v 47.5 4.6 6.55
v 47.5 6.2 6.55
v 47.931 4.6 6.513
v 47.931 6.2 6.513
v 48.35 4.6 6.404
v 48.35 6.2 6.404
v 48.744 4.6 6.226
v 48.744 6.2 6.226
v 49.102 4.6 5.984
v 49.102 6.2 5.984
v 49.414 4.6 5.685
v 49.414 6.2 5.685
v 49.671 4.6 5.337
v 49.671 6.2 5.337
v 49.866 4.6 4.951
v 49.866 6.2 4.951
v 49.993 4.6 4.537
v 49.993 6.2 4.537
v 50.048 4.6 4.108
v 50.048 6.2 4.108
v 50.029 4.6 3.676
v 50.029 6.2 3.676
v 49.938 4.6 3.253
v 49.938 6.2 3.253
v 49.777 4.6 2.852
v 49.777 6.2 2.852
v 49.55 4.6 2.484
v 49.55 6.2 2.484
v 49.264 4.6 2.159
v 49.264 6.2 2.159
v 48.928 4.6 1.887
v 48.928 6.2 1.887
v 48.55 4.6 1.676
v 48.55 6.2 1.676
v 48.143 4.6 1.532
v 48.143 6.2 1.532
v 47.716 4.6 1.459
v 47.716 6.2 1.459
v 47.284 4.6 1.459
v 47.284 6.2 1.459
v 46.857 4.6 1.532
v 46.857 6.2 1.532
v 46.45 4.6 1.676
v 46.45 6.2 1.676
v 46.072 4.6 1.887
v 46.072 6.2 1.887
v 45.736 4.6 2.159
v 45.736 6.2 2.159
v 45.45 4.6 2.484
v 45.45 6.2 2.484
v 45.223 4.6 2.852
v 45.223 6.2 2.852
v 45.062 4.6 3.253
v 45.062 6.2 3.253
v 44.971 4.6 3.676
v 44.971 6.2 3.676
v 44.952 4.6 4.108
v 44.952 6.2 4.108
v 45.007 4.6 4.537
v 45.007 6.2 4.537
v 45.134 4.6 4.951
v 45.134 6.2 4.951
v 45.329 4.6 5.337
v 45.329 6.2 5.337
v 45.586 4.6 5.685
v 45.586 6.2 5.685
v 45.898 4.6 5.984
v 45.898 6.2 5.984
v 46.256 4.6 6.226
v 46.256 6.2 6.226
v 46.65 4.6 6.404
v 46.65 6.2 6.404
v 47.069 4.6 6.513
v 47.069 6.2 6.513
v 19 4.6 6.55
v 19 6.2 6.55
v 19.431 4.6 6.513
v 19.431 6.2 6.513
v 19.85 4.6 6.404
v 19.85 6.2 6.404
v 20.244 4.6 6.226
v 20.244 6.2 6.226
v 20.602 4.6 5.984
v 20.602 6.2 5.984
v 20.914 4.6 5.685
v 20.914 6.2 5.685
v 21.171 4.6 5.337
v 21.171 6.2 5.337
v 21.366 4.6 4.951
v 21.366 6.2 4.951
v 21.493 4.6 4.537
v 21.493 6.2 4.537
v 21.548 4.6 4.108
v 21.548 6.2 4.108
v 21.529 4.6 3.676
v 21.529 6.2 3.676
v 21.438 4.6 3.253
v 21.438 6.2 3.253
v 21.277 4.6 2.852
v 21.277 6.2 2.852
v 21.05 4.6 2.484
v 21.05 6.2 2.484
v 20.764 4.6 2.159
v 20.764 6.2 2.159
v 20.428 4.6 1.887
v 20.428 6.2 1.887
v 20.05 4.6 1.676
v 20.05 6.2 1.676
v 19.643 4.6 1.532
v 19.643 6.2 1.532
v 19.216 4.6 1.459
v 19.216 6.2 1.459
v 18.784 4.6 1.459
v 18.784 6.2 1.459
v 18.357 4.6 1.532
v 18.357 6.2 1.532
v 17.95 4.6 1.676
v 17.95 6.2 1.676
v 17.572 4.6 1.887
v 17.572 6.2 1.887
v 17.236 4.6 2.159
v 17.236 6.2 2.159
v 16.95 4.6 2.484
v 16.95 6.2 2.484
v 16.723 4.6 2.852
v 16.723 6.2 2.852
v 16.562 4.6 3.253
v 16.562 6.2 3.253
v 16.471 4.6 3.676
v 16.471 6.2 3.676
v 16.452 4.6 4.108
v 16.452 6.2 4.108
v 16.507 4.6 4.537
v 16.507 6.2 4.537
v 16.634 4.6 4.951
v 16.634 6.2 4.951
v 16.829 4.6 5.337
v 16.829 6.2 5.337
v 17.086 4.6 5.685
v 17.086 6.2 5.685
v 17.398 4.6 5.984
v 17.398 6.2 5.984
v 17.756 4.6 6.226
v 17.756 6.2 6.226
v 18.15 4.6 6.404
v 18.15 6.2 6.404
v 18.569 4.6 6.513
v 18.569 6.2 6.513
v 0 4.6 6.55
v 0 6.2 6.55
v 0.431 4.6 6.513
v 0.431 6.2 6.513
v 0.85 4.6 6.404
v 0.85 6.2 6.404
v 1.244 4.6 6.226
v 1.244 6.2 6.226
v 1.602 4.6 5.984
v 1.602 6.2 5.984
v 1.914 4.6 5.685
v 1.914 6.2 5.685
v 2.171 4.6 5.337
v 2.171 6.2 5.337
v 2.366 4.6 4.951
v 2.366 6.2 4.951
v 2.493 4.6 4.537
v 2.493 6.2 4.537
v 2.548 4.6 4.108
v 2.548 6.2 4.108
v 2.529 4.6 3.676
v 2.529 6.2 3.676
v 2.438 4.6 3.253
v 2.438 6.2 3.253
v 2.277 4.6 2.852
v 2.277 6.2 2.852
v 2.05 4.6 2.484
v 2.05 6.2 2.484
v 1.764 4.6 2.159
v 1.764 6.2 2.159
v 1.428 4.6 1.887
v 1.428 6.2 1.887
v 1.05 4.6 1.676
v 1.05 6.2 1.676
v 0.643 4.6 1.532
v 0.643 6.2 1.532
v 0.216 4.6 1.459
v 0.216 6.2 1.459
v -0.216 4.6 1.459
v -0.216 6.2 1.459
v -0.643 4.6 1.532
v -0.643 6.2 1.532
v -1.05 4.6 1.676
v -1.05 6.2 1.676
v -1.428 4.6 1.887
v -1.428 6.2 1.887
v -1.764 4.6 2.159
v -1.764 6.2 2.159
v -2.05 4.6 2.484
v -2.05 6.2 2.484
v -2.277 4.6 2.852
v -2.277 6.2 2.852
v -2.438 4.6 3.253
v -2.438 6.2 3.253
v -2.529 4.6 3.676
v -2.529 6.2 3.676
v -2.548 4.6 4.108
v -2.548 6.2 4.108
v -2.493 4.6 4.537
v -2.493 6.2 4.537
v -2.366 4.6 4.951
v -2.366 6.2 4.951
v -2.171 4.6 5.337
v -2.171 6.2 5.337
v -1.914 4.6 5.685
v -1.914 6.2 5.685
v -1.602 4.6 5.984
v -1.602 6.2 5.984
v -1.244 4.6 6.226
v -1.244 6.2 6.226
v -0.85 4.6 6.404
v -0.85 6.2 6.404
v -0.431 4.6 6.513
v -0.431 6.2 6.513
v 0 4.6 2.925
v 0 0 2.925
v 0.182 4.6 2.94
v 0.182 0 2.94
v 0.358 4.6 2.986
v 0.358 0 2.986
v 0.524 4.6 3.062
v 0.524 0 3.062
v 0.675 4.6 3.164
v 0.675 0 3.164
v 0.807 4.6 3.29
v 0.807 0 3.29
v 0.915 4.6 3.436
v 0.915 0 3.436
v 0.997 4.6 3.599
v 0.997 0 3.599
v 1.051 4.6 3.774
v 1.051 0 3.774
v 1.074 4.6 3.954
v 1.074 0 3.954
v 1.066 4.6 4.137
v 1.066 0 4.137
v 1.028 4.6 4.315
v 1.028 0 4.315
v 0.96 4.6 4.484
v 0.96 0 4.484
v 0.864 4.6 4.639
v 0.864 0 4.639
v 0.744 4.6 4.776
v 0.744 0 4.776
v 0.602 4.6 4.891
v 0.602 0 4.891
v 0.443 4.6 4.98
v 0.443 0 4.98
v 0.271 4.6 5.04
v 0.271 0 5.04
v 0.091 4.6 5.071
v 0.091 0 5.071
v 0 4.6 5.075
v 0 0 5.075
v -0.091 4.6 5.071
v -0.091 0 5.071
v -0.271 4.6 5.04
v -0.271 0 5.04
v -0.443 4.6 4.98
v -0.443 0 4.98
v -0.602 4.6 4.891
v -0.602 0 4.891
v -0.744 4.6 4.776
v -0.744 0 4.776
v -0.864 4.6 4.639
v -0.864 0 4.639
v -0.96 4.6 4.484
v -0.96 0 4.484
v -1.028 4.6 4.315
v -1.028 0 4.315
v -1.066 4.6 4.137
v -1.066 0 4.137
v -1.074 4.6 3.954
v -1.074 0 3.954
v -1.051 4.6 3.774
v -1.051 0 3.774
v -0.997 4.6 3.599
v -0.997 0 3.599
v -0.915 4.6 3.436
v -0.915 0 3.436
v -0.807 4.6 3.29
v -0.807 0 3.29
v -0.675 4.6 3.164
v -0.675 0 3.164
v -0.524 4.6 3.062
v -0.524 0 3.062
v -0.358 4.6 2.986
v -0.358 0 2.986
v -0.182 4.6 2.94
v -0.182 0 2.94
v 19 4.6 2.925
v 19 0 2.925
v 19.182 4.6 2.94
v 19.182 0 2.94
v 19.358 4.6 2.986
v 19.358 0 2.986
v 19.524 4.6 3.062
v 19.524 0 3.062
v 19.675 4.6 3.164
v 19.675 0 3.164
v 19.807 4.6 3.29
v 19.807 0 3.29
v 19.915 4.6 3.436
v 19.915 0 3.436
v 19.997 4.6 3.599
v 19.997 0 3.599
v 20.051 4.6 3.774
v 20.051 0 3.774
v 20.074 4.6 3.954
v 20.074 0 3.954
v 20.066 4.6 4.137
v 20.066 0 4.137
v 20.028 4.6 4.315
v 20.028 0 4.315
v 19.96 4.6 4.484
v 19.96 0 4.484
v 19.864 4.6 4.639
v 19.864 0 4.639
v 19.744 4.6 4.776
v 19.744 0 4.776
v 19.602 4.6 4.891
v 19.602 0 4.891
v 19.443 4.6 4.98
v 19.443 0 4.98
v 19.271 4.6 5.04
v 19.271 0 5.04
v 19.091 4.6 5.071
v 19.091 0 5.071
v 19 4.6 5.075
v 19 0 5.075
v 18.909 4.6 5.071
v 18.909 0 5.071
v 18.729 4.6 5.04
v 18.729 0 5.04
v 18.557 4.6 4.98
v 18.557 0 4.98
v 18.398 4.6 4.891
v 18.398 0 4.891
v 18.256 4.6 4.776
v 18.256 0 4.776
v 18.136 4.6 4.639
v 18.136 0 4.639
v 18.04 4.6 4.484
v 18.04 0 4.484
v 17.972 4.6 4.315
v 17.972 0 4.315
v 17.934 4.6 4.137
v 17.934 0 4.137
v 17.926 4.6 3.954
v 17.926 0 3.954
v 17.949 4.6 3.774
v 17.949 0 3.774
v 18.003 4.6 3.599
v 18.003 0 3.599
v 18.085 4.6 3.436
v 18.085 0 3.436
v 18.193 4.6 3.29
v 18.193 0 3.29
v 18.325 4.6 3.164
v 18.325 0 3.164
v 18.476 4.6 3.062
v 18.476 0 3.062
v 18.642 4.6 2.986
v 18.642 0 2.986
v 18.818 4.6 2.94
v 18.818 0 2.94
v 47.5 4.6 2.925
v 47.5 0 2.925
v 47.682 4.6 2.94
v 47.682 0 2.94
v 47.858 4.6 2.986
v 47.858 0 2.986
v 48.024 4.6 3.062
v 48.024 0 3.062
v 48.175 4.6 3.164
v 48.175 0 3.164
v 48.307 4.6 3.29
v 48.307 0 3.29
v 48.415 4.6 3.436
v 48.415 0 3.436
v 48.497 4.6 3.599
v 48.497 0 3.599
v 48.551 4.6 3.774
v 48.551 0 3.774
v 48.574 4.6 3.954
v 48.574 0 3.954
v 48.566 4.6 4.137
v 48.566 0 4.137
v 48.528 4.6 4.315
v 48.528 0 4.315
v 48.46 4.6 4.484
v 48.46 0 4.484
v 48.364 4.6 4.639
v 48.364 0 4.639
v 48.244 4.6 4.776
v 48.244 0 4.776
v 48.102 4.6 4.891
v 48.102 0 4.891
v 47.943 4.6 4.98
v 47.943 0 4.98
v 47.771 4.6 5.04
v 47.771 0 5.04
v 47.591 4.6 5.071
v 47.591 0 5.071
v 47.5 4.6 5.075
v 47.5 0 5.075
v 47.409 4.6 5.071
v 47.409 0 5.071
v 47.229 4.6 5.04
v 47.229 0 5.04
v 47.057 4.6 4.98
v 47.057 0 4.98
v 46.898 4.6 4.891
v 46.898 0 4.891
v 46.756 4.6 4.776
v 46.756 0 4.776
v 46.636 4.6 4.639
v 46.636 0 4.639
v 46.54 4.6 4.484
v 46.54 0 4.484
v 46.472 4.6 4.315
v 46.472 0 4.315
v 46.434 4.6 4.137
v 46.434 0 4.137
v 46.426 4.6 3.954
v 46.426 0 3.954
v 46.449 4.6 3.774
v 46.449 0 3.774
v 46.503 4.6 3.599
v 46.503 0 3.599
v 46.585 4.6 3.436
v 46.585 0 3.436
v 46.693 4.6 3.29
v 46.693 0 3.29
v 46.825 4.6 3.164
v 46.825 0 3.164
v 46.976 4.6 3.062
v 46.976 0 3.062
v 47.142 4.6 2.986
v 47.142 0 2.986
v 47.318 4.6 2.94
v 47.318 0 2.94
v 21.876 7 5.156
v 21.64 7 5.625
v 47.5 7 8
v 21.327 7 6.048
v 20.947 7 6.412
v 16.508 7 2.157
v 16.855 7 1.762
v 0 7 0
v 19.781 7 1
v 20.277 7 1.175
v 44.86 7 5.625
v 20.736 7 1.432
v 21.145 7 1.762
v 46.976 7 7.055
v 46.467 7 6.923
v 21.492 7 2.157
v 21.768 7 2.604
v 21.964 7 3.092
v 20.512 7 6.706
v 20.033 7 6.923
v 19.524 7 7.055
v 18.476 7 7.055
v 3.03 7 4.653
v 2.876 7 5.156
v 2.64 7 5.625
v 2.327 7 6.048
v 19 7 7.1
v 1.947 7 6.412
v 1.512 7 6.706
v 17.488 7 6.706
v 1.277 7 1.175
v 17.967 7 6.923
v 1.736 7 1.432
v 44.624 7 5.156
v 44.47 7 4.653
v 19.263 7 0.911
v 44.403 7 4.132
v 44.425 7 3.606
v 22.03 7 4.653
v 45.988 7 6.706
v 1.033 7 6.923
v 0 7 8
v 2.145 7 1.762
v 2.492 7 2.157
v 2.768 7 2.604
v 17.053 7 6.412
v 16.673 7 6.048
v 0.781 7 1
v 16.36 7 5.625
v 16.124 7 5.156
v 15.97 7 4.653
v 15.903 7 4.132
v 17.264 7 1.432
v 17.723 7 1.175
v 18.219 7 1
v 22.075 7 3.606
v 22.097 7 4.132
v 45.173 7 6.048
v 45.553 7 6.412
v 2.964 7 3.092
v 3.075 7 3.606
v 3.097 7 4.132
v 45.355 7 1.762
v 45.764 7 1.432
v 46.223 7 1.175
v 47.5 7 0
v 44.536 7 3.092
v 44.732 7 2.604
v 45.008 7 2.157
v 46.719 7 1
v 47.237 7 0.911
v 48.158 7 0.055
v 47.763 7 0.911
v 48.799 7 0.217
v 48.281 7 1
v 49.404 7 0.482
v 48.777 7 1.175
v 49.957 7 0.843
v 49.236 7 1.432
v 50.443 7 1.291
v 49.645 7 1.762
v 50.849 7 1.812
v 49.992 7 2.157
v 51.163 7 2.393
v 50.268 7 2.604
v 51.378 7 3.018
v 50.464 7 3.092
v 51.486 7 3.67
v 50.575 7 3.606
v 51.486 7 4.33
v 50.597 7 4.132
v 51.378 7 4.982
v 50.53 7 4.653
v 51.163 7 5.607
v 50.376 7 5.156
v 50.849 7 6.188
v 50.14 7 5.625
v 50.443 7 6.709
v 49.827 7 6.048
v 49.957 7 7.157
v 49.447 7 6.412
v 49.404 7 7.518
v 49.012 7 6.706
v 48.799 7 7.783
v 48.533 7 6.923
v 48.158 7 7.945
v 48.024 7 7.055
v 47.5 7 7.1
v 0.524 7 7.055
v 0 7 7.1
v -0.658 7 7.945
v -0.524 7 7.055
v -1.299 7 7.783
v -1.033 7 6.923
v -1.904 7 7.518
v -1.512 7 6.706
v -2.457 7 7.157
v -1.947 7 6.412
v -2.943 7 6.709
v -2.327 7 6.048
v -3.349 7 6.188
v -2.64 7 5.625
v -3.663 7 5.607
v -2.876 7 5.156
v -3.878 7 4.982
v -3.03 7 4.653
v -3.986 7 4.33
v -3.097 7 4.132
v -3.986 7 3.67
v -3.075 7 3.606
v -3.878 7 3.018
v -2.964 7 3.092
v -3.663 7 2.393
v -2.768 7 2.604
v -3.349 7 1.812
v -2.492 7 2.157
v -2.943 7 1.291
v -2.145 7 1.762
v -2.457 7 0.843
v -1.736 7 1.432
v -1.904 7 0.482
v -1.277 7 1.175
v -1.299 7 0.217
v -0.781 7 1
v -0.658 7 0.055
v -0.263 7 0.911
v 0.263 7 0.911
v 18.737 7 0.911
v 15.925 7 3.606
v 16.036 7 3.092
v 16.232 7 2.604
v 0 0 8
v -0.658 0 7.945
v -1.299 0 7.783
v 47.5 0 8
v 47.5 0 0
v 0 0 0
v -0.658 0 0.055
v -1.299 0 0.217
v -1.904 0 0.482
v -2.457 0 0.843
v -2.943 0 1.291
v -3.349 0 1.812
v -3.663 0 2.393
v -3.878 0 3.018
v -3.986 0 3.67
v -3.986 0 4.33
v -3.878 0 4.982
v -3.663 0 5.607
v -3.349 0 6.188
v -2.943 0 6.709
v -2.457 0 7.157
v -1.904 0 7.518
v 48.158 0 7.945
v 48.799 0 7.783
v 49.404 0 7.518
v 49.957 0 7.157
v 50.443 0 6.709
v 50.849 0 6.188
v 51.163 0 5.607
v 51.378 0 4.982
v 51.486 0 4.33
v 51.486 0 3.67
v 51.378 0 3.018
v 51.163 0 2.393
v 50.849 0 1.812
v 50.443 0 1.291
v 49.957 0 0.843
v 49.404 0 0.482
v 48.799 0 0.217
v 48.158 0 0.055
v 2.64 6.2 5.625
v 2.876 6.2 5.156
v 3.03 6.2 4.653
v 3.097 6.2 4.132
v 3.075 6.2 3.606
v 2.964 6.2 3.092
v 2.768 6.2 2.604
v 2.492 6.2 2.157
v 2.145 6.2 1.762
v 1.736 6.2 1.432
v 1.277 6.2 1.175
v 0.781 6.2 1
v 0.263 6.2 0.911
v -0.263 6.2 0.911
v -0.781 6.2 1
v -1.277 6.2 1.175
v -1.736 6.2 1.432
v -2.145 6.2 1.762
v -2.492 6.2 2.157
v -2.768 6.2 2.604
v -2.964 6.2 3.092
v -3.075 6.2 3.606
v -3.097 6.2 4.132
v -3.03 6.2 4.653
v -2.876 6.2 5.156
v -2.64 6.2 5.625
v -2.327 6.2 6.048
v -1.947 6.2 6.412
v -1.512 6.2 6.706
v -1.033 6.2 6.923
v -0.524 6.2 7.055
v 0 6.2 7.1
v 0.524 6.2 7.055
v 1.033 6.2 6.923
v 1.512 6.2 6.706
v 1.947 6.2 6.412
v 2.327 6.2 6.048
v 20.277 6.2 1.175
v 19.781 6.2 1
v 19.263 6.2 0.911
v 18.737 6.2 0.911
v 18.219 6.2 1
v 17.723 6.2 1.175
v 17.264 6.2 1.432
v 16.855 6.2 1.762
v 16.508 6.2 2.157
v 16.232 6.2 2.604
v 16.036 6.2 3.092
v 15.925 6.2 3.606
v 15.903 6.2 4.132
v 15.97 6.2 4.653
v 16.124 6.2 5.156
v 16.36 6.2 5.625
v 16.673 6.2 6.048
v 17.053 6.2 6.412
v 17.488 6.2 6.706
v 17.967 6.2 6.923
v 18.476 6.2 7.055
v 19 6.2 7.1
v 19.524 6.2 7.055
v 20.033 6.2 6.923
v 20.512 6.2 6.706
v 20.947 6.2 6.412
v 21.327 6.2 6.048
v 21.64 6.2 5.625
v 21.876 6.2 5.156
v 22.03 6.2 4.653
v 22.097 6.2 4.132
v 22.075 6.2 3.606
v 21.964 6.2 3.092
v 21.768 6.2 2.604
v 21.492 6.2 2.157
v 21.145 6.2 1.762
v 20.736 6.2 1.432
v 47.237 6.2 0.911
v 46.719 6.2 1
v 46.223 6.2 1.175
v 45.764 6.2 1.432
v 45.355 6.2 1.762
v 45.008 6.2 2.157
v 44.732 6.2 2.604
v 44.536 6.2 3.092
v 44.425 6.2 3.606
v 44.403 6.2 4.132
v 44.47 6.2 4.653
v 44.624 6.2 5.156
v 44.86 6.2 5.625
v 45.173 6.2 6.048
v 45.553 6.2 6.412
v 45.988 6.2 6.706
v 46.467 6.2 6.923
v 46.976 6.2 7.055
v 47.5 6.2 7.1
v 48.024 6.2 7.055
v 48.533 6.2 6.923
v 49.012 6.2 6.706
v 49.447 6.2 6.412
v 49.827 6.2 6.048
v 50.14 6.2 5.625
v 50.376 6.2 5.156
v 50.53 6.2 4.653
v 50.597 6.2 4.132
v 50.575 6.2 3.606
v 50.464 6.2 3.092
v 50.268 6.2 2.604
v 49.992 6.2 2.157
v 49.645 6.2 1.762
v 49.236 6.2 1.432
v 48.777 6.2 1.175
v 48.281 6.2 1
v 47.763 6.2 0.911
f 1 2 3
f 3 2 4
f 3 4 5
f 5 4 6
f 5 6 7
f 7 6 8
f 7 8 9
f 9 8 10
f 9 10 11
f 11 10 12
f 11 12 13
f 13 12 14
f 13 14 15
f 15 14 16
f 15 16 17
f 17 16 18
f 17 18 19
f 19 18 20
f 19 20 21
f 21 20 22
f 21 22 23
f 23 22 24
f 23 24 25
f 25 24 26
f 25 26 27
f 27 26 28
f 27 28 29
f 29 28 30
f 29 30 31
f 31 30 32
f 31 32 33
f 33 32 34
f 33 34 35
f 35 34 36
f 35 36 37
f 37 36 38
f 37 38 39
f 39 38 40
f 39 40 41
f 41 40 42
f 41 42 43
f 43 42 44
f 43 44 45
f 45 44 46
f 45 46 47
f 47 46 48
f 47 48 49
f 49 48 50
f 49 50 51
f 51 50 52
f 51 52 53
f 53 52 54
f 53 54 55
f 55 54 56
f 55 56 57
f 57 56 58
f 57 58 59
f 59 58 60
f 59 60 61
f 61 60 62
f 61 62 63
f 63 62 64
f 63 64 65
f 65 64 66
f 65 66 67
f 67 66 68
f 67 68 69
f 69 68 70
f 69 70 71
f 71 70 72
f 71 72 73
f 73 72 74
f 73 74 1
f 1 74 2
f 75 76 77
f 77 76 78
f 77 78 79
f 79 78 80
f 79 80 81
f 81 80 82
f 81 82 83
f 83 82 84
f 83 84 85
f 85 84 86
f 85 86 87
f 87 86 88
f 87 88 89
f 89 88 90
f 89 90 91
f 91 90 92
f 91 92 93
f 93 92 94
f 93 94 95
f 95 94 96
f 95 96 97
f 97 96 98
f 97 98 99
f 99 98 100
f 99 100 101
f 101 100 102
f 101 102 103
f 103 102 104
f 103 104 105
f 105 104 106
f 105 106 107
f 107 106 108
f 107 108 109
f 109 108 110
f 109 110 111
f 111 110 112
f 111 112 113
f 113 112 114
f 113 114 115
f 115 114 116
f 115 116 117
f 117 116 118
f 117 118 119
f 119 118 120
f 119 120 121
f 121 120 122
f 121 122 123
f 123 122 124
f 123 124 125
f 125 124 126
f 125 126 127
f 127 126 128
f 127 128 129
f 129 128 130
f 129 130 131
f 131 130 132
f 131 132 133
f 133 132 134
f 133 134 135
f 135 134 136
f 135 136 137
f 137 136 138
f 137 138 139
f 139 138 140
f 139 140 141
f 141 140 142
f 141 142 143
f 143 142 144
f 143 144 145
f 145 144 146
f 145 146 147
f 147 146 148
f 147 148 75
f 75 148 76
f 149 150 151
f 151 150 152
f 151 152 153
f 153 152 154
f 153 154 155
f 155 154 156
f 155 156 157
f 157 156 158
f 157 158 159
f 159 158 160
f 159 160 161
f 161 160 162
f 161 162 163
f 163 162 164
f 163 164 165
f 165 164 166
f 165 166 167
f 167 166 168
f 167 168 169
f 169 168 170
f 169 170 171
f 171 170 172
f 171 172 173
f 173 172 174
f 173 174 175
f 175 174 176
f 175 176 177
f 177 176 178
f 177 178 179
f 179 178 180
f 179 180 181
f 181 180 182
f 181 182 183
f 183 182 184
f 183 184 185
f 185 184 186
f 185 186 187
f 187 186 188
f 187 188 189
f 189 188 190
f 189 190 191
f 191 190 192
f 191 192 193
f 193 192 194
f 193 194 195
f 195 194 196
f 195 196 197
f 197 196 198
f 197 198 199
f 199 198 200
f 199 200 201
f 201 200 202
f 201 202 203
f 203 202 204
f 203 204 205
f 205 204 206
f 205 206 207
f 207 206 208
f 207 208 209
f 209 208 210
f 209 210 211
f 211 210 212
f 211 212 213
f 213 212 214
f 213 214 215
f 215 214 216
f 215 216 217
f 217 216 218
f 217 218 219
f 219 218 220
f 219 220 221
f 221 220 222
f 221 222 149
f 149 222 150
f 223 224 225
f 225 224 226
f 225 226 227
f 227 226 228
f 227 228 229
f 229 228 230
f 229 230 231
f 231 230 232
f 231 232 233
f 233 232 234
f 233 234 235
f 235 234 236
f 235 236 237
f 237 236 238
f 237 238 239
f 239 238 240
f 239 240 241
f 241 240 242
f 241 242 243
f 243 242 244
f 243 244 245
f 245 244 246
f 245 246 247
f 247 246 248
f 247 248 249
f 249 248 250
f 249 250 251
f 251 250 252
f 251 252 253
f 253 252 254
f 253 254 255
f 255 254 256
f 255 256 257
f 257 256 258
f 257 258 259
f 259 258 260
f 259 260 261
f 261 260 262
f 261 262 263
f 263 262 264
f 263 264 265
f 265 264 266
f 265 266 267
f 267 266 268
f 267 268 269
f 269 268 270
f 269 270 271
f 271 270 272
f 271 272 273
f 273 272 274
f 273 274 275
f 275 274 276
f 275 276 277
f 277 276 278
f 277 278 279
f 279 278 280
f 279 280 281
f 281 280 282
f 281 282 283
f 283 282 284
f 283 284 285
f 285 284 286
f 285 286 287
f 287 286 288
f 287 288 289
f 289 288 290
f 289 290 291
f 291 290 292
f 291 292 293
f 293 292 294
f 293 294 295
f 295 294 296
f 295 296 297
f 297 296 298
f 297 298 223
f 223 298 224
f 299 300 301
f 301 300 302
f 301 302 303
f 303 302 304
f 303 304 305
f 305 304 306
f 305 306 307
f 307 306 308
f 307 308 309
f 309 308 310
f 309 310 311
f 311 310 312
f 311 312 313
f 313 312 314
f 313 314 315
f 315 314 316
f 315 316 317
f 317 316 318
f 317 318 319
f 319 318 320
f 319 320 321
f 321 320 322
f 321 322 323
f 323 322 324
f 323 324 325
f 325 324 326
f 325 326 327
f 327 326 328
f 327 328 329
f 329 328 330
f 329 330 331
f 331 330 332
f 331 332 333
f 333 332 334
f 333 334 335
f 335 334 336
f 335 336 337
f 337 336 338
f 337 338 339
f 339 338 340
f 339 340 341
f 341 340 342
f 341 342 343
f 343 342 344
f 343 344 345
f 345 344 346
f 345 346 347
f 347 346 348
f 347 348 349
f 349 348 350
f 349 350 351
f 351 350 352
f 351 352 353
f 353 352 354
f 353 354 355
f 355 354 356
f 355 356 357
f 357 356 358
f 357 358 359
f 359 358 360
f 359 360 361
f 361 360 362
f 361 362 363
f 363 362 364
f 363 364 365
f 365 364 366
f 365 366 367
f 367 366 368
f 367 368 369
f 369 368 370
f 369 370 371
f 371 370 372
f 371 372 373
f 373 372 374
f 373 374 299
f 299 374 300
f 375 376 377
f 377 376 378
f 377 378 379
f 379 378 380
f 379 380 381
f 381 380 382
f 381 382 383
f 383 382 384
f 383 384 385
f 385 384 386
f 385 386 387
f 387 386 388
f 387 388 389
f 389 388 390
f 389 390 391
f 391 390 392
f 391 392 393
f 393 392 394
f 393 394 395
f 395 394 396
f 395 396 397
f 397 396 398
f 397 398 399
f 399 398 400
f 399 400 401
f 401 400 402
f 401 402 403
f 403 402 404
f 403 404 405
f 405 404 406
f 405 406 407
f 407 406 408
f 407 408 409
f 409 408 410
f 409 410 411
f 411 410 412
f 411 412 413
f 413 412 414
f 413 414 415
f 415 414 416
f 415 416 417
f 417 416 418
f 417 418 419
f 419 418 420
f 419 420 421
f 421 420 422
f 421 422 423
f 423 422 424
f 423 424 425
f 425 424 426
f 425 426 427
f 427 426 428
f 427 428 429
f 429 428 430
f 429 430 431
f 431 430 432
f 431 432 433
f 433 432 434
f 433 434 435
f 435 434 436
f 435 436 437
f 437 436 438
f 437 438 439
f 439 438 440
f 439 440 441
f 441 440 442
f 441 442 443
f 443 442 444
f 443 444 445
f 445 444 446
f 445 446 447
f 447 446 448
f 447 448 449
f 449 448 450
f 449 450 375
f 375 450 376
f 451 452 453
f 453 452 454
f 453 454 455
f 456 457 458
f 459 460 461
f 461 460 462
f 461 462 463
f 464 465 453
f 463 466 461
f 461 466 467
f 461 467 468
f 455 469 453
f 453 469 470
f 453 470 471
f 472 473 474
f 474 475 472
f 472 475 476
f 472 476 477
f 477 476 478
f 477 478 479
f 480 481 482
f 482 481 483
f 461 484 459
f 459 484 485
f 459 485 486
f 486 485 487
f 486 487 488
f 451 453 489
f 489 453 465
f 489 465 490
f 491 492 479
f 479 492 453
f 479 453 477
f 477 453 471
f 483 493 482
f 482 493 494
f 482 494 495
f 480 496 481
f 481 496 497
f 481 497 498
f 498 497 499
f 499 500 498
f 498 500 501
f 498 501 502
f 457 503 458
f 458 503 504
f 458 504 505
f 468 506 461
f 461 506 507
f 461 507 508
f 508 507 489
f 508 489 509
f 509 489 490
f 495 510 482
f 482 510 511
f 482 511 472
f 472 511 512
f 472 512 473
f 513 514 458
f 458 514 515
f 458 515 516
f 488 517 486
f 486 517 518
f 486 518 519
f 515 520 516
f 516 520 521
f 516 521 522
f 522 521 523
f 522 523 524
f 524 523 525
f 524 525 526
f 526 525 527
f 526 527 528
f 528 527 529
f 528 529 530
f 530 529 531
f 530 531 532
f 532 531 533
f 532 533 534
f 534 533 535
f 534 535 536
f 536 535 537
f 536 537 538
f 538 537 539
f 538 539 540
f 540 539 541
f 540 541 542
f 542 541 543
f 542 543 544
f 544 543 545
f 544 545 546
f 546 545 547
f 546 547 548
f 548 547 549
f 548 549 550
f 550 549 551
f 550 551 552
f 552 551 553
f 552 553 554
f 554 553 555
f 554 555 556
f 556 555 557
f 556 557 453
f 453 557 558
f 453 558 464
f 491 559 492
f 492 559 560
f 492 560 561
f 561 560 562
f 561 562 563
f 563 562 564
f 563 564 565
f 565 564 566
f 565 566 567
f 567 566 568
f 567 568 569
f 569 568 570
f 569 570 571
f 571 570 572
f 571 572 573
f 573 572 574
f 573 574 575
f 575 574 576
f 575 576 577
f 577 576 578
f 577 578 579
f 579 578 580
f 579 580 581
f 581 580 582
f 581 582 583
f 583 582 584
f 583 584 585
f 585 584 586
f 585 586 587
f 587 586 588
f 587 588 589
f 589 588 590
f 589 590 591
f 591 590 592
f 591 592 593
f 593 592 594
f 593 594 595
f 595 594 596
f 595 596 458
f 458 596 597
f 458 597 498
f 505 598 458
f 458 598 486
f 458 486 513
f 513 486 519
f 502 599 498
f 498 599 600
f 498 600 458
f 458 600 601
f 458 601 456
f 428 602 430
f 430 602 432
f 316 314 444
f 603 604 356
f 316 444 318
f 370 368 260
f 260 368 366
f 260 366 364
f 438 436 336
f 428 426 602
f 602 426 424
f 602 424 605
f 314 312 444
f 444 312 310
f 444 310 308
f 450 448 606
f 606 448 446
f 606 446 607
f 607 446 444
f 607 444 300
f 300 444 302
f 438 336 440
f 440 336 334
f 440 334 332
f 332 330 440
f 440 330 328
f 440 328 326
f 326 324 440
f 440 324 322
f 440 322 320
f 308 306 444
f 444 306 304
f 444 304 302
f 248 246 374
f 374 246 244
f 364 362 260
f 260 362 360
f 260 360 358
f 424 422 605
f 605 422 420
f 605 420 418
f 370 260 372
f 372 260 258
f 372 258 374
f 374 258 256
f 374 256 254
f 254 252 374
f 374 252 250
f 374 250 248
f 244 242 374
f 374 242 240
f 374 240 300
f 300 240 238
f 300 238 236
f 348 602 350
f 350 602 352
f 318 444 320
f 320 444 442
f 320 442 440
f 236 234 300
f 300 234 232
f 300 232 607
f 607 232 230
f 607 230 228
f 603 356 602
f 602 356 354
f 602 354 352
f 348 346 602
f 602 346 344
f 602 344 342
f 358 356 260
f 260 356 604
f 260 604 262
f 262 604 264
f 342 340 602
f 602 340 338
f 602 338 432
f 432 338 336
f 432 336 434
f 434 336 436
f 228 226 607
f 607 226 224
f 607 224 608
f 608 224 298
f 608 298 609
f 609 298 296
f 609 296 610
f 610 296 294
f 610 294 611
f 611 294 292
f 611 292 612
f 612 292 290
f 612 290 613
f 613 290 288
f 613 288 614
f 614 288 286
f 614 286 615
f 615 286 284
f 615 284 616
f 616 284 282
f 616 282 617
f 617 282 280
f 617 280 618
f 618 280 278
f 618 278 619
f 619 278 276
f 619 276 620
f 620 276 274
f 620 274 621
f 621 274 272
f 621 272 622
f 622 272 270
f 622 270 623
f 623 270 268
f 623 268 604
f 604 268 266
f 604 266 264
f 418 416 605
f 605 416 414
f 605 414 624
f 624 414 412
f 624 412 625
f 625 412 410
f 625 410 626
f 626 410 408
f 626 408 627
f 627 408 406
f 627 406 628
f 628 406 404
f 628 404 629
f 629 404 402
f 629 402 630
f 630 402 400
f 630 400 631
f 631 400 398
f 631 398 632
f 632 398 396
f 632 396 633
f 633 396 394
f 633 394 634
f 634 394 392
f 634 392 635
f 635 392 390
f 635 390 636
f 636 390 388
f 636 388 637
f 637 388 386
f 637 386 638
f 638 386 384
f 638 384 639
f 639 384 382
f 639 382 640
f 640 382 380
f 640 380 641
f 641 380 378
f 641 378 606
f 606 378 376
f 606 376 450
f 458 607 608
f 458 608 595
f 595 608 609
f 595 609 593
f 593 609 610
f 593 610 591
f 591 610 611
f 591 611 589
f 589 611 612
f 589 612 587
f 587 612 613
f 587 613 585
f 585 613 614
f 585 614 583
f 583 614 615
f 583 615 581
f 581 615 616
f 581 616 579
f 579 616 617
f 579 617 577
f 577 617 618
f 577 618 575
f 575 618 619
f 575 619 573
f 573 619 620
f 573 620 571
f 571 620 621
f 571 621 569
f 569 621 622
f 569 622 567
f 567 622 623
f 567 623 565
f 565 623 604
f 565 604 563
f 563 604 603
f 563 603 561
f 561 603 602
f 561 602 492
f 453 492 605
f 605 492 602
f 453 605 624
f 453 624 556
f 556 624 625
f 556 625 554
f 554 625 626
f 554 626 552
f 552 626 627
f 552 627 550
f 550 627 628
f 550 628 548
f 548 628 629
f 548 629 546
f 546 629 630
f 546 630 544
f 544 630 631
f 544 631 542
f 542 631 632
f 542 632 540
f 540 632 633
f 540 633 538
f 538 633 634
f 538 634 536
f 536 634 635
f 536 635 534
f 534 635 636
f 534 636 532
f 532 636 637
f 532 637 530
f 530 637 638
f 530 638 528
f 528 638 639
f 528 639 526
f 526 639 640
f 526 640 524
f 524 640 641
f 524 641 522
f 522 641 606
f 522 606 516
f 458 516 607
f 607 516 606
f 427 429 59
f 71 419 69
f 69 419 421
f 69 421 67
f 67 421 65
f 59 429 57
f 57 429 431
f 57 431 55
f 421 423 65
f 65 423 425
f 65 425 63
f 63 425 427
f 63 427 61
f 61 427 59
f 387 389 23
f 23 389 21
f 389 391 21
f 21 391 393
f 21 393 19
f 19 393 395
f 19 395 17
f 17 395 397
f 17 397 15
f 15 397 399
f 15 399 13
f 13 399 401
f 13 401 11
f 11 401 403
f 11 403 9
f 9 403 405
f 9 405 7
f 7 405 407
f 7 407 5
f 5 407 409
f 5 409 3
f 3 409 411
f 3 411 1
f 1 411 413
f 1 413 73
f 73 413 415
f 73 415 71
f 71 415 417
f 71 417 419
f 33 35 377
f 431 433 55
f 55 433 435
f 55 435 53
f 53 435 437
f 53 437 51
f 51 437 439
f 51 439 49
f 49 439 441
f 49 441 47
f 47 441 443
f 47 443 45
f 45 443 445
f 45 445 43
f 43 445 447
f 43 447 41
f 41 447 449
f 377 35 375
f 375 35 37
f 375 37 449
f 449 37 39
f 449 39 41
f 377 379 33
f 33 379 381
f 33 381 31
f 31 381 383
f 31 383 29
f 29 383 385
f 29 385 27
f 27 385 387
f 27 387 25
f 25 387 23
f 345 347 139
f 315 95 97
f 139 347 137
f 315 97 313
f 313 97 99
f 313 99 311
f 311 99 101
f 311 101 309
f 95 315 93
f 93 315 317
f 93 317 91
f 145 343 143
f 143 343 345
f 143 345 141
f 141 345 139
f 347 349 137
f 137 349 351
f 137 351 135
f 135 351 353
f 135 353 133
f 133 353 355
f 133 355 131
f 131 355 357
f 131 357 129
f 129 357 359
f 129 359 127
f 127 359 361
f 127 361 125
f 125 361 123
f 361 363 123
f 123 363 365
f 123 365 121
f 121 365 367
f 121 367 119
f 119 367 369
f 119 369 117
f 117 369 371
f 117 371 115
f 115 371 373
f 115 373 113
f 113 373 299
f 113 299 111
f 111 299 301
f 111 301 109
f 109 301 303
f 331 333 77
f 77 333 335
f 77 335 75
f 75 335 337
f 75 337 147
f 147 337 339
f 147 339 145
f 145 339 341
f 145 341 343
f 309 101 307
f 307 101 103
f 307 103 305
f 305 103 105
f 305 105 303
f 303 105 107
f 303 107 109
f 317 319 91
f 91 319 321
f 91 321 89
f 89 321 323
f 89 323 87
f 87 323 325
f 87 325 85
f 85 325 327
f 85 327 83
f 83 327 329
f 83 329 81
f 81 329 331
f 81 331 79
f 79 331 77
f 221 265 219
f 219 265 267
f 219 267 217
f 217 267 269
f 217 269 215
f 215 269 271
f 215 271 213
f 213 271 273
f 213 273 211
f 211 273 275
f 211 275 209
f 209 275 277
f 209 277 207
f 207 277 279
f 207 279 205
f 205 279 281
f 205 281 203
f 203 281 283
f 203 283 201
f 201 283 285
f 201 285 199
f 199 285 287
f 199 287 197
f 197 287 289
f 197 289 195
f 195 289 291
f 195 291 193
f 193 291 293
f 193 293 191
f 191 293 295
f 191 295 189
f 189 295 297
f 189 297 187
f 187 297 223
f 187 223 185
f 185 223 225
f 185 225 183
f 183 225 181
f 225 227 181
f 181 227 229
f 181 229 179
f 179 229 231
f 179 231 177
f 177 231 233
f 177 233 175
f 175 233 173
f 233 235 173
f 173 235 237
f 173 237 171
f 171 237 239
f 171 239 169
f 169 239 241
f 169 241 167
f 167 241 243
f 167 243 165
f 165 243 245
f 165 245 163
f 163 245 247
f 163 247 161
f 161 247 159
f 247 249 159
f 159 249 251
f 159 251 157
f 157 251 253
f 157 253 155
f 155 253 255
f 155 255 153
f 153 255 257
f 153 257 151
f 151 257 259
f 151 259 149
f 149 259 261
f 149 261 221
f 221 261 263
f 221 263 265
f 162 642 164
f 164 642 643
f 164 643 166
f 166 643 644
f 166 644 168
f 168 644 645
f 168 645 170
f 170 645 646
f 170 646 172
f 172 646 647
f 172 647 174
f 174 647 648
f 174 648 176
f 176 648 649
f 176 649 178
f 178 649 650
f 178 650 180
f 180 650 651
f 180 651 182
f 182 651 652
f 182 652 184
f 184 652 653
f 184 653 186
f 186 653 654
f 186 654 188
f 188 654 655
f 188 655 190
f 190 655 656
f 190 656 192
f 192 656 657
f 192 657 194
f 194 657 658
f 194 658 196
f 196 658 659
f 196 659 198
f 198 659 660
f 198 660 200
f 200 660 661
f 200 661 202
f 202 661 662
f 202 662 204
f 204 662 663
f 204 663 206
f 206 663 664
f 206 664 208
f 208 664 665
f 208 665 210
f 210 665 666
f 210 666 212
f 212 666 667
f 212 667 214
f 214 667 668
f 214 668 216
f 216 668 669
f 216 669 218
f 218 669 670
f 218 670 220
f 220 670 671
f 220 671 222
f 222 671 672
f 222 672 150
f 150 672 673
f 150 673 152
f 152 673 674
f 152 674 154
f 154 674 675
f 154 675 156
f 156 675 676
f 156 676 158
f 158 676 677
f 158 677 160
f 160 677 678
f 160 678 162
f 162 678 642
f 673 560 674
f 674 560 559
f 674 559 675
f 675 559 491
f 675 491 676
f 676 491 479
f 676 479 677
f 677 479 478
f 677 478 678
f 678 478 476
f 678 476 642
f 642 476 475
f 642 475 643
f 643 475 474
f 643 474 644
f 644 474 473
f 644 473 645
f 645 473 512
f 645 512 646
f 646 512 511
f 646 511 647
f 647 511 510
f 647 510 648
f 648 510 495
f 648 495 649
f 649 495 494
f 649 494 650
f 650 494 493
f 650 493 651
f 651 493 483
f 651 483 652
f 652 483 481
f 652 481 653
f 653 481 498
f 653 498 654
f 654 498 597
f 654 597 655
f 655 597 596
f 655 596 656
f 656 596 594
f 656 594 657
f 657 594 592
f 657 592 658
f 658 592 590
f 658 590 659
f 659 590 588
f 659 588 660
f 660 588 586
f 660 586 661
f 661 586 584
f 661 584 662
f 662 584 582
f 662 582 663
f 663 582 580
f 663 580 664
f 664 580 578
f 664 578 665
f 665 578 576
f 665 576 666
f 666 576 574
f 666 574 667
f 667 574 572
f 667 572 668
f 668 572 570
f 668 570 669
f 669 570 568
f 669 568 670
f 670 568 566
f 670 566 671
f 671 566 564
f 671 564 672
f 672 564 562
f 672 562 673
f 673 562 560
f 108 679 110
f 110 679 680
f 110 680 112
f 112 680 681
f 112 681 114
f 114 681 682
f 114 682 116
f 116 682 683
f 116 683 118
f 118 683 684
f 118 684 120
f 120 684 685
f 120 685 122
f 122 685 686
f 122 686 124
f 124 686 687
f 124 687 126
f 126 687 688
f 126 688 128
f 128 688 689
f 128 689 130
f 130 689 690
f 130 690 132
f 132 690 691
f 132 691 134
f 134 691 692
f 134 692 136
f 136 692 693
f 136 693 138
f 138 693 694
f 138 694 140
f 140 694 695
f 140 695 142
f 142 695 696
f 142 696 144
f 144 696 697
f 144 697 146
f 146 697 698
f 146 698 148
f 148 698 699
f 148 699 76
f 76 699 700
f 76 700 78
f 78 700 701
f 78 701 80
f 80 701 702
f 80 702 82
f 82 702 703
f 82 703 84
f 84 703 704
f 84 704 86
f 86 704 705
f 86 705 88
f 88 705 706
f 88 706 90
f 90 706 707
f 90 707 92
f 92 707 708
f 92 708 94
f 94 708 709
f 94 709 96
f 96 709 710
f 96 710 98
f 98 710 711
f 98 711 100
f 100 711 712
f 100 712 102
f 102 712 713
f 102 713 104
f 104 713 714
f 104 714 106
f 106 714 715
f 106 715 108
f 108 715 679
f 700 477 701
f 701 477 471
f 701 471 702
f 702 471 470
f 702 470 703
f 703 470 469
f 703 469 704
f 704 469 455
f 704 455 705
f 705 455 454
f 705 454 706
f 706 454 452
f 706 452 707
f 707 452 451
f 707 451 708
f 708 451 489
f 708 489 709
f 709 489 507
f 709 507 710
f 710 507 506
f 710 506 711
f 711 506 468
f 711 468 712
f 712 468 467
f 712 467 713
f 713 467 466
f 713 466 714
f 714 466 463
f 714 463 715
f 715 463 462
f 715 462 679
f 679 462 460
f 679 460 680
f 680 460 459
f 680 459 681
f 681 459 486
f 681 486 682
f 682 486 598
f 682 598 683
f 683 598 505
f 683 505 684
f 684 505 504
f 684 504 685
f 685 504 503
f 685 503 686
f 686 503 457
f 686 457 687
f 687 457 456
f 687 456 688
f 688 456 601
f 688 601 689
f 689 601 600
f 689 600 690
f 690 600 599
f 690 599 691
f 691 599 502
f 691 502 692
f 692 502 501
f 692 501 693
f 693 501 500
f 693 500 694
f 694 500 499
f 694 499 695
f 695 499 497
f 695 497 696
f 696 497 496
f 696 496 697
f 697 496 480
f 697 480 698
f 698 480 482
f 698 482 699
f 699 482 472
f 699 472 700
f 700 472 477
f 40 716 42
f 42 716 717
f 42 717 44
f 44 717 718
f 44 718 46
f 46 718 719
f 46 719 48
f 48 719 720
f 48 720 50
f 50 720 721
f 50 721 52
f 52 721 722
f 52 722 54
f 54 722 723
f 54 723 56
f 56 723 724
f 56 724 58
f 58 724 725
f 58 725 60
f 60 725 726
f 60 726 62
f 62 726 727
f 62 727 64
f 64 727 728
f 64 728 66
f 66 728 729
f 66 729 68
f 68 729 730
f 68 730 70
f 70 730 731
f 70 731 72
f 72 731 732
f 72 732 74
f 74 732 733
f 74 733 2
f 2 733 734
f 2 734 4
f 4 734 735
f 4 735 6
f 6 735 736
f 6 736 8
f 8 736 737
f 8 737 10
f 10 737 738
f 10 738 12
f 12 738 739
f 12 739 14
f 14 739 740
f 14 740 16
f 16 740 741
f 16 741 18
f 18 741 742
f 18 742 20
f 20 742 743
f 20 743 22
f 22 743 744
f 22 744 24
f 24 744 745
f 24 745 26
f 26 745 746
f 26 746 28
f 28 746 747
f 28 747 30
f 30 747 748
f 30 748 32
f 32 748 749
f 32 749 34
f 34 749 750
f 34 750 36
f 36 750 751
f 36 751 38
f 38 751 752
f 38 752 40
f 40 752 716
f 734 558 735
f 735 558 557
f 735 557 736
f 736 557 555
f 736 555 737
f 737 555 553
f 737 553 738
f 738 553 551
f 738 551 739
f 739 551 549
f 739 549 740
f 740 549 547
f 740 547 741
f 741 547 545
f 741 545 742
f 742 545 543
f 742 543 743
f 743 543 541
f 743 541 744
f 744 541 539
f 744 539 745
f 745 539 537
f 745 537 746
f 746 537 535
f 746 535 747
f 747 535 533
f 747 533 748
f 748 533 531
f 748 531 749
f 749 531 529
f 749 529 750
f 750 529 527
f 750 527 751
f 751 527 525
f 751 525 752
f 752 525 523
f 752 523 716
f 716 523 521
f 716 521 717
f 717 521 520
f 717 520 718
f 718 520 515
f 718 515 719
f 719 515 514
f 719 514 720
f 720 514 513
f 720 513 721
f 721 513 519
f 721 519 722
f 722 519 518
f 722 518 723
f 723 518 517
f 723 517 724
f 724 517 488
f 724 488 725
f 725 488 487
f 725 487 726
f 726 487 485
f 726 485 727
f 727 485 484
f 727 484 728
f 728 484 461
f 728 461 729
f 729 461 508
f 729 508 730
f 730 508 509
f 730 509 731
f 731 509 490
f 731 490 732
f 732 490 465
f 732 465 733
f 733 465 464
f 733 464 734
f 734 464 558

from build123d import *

# Parameters (mm, degrees)
SKETCH_1_R          = 1.075
EXTRUDE_1_DEPTH     = 7
SKETCH_3_R          = 2.55
CUT_EXTRUDE_1_DEPTH = 2.4
SKETCH_4_R          = 3.1
CUT_EXTRUDE_3_DEPTH = 0.8


with BuildPart() as part:
    # 草图1 → 凸台-拉伸1 (new body)
    with BuildSketch(Plane(origin=(0, 0, 0), x_dir=(1, 0, 0), z_dir=(0, 1, 0))):
        with BuildLine():
            Line((0, 0), (47.5, 0))
            ThreePointArc((47.5, 0), (51.5, -4), (47.5, -8))
            Line((47.5, -8), (0, -8))
            ThreePointArc((0, -8), (-4, -4), (0, 0))
        make_face()
        with Locations((0, -4)):
            Circle(SKETCH_1_R, mode=Mode.SUBTRACT)
        with Locations((19, -4)):
            Circle(SKETCH_1_R, mode=Mode.SUBTRACT)
        with Locations((47.5, -4)):
            Circle(SKETCH_1_R, mode=Mode.SUBTRACT)
    extrude(amount=EXTRUDE_1_DEPTH)

    # 草图3 → 切除-拉伸1 (cut)
    with BuildSketch(Plane(origin=(0, 7, 0), x_dir=(1, 0, 0), z_dir=(0, 1, 0))):
        with Locations((0, -4)):
            Circle(SKETCH_3_R)
        with Locations((19, -4)):
            Circle(SKETCH_3_R)
        with Locations((47.5, -4)):
            Circle(SKETCH_3_R)
    extrude(amount=-CUT_EXTRUDE_1_DEPTH, mode=Mode.SUBTRACT)

    # 草图4 → 切除-拉伸3 (cut)
    with BuildSketch(Plane(origin=(0, 7, 0), x_dir=(1, 0, 0), z_dir=(0, 1, 0))):
        with Locations((0, -4)):
            Circle(SKETCH_4_R)
        with Locations((19, -4)):
            Circle(SKETCH_4_R)
        with Locations((47.5, -4)):
            Circle(SKETCH_4_R)
    extrude(amount=-CUT_EXTRUDE_3_DEPTH, mode=Mode.SUBTRACT)


solid = part.part
